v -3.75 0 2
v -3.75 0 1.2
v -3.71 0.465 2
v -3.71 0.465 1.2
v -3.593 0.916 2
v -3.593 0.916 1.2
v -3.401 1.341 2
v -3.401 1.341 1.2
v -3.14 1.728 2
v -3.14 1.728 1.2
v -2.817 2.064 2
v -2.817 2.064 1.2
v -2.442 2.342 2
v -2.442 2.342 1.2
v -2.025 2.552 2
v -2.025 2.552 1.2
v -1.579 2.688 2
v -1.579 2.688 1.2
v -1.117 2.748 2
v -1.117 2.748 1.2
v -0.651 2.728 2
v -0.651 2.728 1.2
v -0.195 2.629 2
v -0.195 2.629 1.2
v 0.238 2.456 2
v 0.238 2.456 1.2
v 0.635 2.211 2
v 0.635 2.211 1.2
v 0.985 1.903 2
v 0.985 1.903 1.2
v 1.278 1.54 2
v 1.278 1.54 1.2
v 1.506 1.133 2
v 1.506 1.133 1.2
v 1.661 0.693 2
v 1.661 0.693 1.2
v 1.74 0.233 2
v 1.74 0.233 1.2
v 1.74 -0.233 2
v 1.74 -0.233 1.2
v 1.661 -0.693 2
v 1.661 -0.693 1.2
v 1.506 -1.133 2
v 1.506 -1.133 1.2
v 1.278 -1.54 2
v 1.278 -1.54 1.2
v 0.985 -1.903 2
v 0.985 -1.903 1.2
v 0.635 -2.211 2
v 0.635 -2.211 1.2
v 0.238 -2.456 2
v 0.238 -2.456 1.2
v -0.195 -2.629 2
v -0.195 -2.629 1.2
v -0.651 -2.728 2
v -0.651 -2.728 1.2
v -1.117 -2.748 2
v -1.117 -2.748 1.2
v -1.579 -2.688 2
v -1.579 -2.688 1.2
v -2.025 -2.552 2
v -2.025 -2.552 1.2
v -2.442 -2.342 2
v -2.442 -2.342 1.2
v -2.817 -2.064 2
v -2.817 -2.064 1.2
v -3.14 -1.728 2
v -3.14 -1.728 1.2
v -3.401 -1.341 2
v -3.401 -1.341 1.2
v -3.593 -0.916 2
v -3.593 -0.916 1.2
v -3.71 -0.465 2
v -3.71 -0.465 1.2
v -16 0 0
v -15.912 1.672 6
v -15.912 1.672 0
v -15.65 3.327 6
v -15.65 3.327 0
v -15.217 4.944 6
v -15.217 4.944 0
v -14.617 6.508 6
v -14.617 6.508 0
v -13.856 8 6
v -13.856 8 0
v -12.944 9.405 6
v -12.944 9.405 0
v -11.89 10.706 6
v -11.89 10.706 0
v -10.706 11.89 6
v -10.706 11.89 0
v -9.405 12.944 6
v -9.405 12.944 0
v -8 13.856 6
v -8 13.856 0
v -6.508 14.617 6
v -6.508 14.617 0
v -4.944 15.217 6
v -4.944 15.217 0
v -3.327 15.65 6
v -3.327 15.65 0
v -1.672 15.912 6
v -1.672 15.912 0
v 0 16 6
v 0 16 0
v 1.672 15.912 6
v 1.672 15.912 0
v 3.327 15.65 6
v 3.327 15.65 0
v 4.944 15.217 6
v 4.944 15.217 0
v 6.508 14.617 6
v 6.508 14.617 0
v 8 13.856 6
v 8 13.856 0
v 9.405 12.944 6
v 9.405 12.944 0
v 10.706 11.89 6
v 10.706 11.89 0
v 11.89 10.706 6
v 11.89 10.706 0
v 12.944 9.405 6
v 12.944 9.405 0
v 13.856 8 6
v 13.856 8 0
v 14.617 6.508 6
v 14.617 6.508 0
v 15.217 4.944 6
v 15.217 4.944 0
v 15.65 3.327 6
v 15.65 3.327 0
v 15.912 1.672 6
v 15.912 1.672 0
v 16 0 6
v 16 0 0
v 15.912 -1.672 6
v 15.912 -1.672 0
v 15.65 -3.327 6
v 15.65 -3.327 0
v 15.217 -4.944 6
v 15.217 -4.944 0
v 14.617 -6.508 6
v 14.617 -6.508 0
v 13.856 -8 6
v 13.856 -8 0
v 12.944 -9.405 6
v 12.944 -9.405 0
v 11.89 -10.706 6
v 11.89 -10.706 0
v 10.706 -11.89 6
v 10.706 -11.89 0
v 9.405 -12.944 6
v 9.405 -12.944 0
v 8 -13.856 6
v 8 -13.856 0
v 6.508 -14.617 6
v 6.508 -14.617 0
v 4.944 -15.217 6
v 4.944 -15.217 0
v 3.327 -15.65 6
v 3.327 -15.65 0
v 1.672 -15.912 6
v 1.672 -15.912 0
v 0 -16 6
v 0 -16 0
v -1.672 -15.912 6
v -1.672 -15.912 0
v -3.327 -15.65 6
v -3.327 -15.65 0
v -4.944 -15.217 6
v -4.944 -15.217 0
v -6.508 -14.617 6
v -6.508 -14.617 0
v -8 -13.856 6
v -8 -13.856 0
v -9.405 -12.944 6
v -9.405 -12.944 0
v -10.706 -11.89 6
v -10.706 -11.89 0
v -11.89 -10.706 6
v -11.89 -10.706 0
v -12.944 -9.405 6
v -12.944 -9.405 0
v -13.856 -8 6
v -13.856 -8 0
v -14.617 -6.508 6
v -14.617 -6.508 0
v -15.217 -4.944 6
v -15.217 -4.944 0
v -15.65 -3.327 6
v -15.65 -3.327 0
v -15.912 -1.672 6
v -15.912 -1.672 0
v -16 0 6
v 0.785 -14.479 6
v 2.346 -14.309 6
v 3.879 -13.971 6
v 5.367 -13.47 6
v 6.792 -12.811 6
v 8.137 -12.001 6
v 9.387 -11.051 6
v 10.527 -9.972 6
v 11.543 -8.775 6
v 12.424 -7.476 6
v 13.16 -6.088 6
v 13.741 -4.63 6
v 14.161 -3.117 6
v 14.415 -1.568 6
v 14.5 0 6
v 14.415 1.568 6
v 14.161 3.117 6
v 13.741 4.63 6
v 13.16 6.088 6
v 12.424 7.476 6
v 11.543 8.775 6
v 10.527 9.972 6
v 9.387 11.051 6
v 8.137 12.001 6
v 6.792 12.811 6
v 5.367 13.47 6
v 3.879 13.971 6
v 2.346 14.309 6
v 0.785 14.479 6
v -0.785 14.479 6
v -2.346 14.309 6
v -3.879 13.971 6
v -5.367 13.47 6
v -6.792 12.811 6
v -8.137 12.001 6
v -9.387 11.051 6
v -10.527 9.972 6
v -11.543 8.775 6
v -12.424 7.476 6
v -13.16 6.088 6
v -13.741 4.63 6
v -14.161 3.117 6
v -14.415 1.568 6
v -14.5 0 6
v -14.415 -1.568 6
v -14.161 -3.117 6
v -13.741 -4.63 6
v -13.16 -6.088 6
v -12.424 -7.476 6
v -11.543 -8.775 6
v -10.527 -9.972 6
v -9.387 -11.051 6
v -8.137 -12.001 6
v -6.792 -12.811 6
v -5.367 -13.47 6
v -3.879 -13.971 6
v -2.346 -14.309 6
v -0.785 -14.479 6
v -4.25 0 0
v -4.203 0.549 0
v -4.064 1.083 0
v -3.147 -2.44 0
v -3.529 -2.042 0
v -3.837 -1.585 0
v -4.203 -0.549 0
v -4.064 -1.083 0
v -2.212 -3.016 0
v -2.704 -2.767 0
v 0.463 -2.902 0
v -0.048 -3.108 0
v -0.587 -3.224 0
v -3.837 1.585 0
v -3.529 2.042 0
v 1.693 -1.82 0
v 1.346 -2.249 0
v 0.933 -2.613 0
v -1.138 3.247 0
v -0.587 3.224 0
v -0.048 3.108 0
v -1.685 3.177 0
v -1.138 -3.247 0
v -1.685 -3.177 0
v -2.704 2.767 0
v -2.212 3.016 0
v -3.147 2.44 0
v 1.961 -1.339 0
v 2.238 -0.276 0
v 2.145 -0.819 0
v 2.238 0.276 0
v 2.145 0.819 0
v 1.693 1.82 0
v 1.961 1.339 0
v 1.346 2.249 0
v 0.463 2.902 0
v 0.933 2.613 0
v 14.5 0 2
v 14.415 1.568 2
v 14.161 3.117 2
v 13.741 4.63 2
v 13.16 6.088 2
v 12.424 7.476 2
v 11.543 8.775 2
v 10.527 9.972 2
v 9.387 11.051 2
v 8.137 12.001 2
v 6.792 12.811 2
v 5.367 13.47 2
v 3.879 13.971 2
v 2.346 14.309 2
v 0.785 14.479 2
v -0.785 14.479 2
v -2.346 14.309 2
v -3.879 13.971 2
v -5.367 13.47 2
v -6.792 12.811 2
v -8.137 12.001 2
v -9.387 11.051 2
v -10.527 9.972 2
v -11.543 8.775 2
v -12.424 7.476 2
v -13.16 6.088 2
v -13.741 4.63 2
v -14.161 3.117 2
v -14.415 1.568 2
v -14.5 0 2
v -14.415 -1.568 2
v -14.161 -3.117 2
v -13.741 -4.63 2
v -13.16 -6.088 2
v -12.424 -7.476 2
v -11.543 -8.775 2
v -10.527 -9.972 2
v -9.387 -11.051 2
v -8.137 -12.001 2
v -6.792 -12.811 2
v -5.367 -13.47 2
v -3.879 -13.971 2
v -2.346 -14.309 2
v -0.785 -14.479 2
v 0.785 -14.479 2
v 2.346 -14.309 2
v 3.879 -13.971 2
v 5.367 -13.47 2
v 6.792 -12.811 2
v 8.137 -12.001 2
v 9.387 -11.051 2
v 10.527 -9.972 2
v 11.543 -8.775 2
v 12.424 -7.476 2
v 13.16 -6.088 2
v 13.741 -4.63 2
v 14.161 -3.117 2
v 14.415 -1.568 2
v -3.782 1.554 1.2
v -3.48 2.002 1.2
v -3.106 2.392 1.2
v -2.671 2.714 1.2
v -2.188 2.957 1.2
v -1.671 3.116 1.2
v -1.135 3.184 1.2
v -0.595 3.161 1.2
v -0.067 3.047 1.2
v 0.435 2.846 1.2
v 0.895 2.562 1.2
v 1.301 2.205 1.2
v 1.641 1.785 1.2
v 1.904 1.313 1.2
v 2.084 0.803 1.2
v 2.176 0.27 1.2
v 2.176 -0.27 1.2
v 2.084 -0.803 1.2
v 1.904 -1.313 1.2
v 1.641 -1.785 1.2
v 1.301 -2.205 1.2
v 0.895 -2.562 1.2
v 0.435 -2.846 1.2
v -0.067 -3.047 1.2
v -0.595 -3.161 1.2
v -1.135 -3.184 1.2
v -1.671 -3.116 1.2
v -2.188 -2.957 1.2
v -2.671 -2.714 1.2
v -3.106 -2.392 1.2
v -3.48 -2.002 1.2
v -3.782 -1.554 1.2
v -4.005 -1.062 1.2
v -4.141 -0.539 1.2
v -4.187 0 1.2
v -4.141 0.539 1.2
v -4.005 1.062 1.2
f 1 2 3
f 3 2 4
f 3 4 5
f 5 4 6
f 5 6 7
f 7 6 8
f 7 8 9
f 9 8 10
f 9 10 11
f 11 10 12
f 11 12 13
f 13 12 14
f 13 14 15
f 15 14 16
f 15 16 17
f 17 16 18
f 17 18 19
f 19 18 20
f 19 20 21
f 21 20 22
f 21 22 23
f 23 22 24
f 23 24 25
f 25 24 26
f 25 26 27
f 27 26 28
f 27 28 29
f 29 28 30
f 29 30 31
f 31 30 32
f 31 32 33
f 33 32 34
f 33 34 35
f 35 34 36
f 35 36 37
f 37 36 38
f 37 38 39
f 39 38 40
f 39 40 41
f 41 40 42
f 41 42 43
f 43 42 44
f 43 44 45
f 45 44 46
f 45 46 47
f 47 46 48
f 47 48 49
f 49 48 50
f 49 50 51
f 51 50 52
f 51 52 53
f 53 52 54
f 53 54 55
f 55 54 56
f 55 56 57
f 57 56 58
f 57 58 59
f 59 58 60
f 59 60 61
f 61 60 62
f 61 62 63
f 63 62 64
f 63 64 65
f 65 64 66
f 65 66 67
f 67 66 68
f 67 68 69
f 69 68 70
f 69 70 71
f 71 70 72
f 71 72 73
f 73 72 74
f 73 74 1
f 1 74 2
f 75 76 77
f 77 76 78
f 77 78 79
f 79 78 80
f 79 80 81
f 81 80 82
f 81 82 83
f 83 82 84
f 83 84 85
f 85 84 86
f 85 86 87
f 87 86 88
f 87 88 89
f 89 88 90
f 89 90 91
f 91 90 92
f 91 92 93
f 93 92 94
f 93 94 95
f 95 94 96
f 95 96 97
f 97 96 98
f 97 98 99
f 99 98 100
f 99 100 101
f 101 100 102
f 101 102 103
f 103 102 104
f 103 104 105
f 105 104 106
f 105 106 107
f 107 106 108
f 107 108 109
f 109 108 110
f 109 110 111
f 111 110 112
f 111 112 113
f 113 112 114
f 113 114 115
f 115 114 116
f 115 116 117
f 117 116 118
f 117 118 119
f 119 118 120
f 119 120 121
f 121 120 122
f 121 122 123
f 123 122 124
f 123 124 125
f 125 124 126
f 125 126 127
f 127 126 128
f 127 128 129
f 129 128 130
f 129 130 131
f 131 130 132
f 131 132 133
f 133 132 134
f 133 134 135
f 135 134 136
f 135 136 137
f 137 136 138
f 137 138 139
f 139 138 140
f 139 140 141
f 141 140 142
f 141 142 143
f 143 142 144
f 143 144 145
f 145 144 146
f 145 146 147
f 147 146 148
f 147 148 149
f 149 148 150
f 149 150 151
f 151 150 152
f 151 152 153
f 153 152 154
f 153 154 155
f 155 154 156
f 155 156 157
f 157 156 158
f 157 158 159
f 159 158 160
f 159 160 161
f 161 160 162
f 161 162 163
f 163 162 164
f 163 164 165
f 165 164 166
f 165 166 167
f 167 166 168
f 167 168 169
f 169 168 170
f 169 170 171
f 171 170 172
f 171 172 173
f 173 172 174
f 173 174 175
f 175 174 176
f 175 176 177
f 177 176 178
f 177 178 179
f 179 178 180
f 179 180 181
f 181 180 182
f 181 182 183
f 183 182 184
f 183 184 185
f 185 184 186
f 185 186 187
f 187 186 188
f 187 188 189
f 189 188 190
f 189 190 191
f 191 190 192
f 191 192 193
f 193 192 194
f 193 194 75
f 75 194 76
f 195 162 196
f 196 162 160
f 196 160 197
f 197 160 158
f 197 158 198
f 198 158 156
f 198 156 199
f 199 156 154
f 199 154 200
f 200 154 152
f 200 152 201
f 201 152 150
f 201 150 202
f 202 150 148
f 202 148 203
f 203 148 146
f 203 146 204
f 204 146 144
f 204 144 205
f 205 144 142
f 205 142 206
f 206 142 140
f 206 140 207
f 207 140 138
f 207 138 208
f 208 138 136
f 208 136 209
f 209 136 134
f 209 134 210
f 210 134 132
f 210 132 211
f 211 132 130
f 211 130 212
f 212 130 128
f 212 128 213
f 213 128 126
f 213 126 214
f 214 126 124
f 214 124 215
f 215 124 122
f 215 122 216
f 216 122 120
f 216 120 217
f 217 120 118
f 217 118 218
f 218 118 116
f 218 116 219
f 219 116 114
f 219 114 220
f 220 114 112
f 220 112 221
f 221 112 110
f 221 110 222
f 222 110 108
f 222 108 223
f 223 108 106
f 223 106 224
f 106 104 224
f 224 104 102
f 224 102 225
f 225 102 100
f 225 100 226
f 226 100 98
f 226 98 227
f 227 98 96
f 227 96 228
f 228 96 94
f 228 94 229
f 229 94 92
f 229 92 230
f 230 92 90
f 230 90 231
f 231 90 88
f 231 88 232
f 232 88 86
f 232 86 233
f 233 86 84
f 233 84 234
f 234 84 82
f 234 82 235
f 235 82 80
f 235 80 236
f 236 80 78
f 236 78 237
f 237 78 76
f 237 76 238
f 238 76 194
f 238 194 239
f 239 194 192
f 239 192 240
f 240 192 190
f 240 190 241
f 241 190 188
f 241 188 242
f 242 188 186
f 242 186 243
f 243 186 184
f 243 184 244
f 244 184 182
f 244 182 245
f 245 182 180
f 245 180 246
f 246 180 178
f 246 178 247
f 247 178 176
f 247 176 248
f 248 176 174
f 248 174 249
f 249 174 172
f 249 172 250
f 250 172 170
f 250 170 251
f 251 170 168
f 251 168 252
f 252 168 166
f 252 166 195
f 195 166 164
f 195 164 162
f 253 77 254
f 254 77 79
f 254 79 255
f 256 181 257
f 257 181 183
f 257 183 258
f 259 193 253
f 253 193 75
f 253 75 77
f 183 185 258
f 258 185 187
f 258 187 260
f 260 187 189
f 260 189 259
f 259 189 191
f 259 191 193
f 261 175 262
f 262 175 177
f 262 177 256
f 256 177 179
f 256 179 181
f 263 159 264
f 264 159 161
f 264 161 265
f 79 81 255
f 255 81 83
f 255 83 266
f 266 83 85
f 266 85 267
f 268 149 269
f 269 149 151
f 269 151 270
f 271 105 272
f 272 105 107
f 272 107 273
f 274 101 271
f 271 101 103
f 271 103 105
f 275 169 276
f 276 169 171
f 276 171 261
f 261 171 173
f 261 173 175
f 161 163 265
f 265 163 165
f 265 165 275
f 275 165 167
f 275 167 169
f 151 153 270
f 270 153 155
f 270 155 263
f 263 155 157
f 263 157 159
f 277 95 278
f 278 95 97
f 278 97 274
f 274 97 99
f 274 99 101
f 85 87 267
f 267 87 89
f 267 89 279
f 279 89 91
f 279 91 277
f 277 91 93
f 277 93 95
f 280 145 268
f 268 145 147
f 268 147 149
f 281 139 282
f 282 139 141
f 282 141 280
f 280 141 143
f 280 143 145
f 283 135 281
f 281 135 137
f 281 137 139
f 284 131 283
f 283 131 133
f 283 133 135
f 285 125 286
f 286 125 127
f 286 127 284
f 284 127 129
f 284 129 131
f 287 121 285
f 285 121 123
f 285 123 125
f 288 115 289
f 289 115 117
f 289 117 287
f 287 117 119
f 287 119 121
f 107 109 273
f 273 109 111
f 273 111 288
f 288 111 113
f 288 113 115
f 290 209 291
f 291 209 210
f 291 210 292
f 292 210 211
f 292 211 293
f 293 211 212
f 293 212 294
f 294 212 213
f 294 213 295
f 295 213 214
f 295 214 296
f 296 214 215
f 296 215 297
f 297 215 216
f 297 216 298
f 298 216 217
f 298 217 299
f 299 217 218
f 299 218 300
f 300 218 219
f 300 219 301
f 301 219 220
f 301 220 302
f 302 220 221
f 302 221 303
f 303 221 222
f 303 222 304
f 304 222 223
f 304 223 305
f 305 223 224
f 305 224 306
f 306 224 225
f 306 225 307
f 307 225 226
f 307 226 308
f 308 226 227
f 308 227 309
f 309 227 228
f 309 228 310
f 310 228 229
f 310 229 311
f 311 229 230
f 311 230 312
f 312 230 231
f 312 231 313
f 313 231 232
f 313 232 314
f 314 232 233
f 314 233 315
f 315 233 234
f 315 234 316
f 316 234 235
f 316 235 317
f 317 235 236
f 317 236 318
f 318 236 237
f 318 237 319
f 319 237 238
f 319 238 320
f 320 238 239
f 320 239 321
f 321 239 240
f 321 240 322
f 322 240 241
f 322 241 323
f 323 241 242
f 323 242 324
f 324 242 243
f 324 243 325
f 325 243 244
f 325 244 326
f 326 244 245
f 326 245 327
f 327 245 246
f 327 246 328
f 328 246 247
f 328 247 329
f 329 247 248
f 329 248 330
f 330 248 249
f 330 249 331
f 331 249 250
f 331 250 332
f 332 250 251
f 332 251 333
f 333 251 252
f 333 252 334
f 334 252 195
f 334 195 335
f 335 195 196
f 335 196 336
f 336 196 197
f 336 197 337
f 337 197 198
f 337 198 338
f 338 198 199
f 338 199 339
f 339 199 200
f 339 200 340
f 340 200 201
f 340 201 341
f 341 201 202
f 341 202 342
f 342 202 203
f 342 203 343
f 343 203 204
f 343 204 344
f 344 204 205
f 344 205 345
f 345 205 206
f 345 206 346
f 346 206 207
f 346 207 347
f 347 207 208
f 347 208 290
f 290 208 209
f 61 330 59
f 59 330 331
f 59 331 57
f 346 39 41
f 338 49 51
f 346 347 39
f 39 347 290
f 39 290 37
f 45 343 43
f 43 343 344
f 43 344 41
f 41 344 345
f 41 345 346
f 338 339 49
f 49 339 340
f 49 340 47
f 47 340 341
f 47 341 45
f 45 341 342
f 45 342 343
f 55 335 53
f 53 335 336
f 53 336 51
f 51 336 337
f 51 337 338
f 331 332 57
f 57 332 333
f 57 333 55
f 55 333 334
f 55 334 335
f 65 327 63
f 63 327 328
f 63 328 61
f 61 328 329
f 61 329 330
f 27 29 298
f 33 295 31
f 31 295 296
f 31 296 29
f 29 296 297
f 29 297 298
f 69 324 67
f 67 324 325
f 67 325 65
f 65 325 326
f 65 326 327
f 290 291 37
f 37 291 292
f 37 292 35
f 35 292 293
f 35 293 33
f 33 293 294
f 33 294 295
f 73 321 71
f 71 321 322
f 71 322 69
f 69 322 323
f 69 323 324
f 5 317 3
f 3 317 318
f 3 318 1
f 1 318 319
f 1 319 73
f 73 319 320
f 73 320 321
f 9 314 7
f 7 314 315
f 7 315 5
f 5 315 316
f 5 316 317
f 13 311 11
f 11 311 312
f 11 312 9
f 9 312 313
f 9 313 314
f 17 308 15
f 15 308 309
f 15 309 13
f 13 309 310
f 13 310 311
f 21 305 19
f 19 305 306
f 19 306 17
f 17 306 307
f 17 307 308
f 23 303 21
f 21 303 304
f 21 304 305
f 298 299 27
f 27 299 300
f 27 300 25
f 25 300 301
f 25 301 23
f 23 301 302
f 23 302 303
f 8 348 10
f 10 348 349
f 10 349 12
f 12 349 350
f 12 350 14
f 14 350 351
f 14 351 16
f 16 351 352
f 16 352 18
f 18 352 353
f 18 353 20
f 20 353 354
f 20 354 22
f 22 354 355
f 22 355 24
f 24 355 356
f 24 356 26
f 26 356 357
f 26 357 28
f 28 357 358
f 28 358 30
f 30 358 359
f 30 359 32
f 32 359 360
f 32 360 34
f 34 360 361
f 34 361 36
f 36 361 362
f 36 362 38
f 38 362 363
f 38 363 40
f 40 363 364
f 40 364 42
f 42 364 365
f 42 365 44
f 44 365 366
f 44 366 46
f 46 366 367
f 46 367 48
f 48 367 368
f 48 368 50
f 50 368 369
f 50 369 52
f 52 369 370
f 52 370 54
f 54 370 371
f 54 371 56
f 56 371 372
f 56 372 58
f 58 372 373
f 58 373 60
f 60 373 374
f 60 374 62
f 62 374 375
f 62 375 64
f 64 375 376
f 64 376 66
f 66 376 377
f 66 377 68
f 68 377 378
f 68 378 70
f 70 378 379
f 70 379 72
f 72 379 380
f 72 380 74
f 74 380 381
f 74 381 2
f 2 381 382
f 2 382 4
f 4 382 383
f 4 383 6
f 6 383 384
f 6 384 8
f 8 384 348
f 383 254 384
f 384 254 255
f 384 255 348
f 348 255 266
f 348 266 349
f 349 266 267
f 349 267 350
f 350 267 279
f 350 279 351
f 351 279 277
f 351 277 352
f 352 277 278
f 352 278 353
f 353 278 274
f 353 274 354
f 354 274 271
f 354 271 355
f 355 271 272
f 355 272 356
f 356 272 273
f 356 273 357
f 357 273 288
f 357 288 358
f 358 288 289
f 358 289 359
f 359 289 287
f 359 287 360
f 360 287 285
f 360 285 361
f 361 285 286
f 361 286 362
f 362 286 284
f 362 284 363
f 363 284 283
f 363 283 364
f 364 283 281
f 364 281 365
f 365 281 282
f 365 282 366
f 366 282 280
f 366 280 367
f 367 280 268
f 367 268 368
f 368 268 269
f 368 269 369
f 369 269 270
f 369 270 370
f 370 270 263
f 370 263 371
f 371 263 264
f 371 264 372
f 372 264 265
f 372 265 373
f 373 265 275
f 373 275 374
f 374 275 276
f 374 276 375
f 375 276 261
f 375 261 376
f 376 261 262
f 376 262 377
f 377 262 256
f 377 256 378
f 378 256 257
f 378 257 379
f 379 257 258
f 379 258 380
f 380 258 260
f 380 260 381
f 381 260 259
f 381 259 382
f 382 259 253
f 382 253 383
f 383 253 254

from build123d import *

# Parameters (mm, degrees)
SKETCH1_R           = 16
BOSS_EXTRUDE1_DEPTH = 6
SKETCH3_R           = 14.5
CUT_EXTRUDE1_DEPTH  = 4
SKETCH4_R           = 2.75
CUT_EXTRUDE2_DEPTH  = 2
SKETCH6_R           = 3.25
CUT_EXTRUDE3_DEPTH  = 1.2
DRAFT4_ANGLE        = 3


with BuildPart() as part:
    # Sketch1 → Boss-Extrude1 (new body)
    with BuildSketch(Plane.XY):
        Circle(SKETCH1_R)
    extrude(amount=BOSS_EXTRUDE1_DEPTH)

    # Sketch3 → Cut-Extrude1 (cut)
    with BuildSketch(Plane.XY.offset(6)):
        Circle(SKETCH3_R)
    extrude(amount=-CUT_EXTRUDE1_DEPTH, mode=Mode.SUBTRACT)

    # Sketch4 → Cut-Extrude2 (cut)
    with BuildSketch(Plane(origin=(0, 0, 0), x_dir=(-1, 0, 0), z_dir=(0, 0, -1))):
        with Locations((1, 0)):
            Circle(SKETCH4_R)
    extrude(amount=-CUT_EXTRUDE2_DEPTH, mode=Mode.SUBTRACT)

    # Sketch6 → Cut-Extrude3 (cut)
    with BuildSketch(Plane(origin=(0, 0, 0), x_dir=(-1, 0, 0), z_dir=(0, 0, -1))):
        with Locations((1, 0)):
            Circle(SKETCH6_R)
    extrude(amount=-CUT_EXTRUDE3_DEPTH, mode=Mode.SUBTRACT)

    # Draft4
    draft4_faces = [part.faces().sort_by_distance(p)[0] for p in [
        (2.25, 0, 0.6),
    ]]
    draft(draft4_faces, Plane(origin=(0, 0, 0), x_dir=(-1, 0, 0), z_dir=(0, 0, -1)), DRAFT4_ANGLE)


solid = part.part
